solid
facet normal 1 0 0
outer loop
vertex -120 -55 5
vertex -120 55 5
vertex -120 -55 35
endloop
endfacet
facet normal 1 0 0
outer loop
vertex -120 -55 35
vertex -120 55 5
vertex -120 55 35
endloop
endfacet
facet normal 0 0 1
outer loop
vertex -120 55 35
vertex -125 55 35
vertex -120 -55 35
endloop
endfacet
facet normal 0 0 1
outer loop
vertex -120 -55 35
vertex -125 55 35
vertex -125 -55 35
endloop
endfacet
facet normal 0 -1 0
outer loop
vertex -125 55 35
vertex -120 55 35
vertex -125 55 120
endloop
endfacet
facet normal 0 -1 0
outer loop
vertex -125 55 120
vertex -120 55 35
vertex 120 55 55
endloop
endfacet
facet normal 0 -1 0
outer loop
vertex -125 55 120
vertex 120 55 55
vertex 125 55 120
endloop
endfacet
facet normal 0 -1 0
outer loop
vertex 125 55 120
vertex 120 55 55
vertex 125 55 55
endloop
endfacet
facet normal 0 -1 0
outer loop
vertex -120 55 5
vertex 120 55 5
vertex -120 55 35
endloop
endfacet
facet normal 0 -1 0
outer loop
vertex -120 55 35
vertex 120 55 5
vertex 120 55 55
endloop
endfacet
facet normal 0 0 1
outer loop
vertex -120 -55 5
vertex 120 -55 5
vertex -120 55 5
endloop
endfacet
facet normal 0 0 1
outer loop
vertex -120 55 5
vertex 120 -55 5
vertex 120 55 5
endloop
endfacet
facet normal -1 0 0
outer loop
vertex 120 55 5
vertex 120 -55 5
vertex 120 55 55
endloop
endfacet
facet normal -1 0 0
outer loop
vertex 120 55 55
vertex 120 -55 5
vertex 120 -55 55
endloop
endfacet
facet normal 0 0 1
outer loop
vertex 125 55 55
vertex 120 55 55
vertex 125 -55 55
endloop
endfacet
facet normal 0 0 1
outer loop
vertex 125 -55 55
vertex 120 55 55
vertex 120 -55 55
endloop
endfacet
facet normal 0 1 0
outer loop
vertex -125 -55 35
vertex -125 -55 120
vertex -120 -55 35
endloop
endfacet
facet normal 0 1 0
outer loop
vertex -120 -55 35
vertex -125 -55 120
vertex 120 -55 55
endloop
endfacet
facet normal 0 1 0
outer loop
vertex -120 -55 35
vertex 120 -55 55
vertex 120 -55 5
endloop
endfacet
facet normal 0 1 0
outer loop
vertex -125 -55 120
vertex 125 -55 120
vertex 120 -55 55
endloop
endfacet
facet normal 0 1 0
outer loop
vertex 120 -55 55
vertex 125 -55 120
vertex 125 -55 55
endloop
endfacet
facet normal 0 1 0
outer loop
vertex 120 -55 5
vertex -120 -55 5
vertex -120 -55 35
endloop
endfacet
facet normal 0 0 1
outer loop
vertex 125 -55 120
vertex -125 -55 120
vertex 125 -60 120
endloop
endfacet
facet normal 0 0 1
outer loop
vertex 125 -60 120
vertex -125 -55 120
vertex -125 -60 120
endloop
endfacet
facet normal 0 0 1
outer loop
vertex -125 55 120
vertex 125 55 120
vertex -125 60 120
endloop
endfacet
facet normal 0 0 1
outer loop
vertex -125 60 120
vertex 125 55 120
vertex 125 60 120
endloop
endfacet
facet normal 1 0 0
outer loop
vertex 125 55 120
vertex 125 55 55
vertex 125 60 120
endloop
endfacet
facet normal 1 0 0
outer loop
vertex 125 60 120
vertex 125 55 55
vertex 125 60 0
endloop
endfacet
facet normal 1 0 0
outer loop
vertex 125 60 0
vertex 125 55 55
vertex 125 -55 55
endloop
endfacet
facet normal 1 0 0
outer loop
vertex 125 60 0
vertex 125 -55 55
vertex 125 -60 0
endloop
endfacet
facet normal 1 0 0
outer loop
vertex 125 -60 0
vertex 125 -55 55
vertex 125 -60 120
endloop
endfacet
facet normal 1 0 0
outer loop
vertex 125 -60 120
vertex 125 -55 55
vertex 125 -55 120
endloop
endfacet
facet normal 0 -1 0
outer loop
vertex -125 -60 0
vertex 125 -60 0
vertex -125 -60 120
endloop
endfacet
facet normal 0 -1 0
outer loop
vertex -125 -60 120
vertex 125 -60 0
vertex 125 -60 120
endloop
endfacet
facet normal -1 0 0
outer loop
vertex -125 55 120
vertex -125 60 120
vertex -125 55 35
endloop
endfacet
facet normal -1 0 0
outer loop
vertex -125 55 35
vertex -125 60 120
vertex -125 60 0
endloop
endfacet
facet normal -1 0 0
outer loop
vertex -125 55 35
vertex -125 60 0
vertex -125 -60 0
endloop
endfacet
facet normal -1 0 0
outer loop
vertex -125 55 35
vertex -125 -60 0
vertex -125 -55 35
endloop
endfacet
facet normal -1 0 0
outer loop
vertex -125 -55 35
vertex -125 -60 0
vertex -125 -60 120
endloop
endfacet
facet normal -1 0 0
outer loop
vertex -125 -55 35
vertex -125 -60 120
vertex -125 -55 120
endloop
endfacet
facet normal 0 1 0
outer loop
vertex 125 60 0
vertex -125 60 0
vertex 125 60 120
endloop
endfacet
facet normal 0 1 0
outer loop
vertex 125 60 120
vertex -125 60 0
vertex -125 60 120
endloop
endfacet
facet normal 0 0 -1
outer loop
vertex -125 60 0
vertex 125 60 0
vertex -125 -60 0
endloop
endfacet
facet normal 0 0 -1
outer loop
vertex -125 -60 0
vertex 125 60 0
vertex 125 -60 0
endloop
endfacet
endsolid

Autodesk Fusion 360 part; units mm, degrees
sketch "スケッチ1" plane through (0, 0, 0) normal (0, 0, 1) x (1, 0, 0)
  line L0 (125, -60) -> (-125, -60)
  line L1 (-125, -60) -> (-125, 60)
  line L2 (-125, 60) -> (125, 60)
  line L3 (125, 60) -> (125, -60)
  line L4 (125, -60) -> (-125, 60) construction
  line L5 (-125, -60) -> (125, 60) construction
  dimension "d1" = 250
  dimension "d2" = 120
extrude "押し出し1" add sketch "スケッチ1" along normal blind 120
sketch "スケッチ2" plane through (0, 0, 120) normal (0, 0, 1) x (-1, 0, 0)
  line L0 (-125, -60) -> (125, -60)
  line L1 (125, -60) -> (125, 60)
  line L2 (125, 60) -> (-125, 60)
  line L3 (-125, 60) -> (-125, -60)
  line L4 (-125, 55) -> (125, 55)
  line L5 (125, 55) -> (125, -55)
  line L6 (125, -55) -> (-125, -55)
  line L7 (-125, -55) -> (-125, 55)
  line L8 (-125, 55) -> (125, -55) construction
  line L9 (125, 55) -> (-125, -55) construction
  dimension "d5" = 250
  dimension "d6" = 110
extrude "押し出し2" cut sketch "スケッチ2" against normal blind 115 contours L1 L3 L4 L5 L6 L7
sketch "スケッチ3" plane through (0, 0, 5) normal (0, 0, 1) x (-1, 0, 0)
  line L0 (-125, -55) -> (125, -55)
  line L1 (125, -55) -> (125, 55)
  line L2 (125, 55) -> (-125, 55)
  line L3 (-125, 55) -> (-125, -55)
  line L4 (-125, -55) -> (-120, -55)
  line L5 (-120, -55) -> (-120, 55)
  line L6 (-120, 55) -> (-125, 55)
  line L7 (-125, 55) -> (-125, -55)
extrude "押し出し3" add sketch "スケッチ3" along normal blind 50 contours L0 L2 L3 L4 L5 L6 L7
sketch "スケッチ4" plane through (0, 0, 5) normal (0, 0, 1) x (-1, 0, 0)
  line L0 (-120, 55) -> (-120, -55)
  line L1 (-120, -55) -> (125, -55)
  line L2 (125, -55) -> (125, 55)
  line L3 (125, 55) -> (-120, 55)
  line L4 (120, -55) -> (125, -55)
  line L5 (125, -55) -> (125, 55)
  line L6 (125, 55) -> (120, 55)
  line L7 (120, 55) -> (120, -55)
extrude "押し出し4" add sketch "スケッチ4" along normal blind 30 contours L1 L2 L3 L4 L5 L6 L7
